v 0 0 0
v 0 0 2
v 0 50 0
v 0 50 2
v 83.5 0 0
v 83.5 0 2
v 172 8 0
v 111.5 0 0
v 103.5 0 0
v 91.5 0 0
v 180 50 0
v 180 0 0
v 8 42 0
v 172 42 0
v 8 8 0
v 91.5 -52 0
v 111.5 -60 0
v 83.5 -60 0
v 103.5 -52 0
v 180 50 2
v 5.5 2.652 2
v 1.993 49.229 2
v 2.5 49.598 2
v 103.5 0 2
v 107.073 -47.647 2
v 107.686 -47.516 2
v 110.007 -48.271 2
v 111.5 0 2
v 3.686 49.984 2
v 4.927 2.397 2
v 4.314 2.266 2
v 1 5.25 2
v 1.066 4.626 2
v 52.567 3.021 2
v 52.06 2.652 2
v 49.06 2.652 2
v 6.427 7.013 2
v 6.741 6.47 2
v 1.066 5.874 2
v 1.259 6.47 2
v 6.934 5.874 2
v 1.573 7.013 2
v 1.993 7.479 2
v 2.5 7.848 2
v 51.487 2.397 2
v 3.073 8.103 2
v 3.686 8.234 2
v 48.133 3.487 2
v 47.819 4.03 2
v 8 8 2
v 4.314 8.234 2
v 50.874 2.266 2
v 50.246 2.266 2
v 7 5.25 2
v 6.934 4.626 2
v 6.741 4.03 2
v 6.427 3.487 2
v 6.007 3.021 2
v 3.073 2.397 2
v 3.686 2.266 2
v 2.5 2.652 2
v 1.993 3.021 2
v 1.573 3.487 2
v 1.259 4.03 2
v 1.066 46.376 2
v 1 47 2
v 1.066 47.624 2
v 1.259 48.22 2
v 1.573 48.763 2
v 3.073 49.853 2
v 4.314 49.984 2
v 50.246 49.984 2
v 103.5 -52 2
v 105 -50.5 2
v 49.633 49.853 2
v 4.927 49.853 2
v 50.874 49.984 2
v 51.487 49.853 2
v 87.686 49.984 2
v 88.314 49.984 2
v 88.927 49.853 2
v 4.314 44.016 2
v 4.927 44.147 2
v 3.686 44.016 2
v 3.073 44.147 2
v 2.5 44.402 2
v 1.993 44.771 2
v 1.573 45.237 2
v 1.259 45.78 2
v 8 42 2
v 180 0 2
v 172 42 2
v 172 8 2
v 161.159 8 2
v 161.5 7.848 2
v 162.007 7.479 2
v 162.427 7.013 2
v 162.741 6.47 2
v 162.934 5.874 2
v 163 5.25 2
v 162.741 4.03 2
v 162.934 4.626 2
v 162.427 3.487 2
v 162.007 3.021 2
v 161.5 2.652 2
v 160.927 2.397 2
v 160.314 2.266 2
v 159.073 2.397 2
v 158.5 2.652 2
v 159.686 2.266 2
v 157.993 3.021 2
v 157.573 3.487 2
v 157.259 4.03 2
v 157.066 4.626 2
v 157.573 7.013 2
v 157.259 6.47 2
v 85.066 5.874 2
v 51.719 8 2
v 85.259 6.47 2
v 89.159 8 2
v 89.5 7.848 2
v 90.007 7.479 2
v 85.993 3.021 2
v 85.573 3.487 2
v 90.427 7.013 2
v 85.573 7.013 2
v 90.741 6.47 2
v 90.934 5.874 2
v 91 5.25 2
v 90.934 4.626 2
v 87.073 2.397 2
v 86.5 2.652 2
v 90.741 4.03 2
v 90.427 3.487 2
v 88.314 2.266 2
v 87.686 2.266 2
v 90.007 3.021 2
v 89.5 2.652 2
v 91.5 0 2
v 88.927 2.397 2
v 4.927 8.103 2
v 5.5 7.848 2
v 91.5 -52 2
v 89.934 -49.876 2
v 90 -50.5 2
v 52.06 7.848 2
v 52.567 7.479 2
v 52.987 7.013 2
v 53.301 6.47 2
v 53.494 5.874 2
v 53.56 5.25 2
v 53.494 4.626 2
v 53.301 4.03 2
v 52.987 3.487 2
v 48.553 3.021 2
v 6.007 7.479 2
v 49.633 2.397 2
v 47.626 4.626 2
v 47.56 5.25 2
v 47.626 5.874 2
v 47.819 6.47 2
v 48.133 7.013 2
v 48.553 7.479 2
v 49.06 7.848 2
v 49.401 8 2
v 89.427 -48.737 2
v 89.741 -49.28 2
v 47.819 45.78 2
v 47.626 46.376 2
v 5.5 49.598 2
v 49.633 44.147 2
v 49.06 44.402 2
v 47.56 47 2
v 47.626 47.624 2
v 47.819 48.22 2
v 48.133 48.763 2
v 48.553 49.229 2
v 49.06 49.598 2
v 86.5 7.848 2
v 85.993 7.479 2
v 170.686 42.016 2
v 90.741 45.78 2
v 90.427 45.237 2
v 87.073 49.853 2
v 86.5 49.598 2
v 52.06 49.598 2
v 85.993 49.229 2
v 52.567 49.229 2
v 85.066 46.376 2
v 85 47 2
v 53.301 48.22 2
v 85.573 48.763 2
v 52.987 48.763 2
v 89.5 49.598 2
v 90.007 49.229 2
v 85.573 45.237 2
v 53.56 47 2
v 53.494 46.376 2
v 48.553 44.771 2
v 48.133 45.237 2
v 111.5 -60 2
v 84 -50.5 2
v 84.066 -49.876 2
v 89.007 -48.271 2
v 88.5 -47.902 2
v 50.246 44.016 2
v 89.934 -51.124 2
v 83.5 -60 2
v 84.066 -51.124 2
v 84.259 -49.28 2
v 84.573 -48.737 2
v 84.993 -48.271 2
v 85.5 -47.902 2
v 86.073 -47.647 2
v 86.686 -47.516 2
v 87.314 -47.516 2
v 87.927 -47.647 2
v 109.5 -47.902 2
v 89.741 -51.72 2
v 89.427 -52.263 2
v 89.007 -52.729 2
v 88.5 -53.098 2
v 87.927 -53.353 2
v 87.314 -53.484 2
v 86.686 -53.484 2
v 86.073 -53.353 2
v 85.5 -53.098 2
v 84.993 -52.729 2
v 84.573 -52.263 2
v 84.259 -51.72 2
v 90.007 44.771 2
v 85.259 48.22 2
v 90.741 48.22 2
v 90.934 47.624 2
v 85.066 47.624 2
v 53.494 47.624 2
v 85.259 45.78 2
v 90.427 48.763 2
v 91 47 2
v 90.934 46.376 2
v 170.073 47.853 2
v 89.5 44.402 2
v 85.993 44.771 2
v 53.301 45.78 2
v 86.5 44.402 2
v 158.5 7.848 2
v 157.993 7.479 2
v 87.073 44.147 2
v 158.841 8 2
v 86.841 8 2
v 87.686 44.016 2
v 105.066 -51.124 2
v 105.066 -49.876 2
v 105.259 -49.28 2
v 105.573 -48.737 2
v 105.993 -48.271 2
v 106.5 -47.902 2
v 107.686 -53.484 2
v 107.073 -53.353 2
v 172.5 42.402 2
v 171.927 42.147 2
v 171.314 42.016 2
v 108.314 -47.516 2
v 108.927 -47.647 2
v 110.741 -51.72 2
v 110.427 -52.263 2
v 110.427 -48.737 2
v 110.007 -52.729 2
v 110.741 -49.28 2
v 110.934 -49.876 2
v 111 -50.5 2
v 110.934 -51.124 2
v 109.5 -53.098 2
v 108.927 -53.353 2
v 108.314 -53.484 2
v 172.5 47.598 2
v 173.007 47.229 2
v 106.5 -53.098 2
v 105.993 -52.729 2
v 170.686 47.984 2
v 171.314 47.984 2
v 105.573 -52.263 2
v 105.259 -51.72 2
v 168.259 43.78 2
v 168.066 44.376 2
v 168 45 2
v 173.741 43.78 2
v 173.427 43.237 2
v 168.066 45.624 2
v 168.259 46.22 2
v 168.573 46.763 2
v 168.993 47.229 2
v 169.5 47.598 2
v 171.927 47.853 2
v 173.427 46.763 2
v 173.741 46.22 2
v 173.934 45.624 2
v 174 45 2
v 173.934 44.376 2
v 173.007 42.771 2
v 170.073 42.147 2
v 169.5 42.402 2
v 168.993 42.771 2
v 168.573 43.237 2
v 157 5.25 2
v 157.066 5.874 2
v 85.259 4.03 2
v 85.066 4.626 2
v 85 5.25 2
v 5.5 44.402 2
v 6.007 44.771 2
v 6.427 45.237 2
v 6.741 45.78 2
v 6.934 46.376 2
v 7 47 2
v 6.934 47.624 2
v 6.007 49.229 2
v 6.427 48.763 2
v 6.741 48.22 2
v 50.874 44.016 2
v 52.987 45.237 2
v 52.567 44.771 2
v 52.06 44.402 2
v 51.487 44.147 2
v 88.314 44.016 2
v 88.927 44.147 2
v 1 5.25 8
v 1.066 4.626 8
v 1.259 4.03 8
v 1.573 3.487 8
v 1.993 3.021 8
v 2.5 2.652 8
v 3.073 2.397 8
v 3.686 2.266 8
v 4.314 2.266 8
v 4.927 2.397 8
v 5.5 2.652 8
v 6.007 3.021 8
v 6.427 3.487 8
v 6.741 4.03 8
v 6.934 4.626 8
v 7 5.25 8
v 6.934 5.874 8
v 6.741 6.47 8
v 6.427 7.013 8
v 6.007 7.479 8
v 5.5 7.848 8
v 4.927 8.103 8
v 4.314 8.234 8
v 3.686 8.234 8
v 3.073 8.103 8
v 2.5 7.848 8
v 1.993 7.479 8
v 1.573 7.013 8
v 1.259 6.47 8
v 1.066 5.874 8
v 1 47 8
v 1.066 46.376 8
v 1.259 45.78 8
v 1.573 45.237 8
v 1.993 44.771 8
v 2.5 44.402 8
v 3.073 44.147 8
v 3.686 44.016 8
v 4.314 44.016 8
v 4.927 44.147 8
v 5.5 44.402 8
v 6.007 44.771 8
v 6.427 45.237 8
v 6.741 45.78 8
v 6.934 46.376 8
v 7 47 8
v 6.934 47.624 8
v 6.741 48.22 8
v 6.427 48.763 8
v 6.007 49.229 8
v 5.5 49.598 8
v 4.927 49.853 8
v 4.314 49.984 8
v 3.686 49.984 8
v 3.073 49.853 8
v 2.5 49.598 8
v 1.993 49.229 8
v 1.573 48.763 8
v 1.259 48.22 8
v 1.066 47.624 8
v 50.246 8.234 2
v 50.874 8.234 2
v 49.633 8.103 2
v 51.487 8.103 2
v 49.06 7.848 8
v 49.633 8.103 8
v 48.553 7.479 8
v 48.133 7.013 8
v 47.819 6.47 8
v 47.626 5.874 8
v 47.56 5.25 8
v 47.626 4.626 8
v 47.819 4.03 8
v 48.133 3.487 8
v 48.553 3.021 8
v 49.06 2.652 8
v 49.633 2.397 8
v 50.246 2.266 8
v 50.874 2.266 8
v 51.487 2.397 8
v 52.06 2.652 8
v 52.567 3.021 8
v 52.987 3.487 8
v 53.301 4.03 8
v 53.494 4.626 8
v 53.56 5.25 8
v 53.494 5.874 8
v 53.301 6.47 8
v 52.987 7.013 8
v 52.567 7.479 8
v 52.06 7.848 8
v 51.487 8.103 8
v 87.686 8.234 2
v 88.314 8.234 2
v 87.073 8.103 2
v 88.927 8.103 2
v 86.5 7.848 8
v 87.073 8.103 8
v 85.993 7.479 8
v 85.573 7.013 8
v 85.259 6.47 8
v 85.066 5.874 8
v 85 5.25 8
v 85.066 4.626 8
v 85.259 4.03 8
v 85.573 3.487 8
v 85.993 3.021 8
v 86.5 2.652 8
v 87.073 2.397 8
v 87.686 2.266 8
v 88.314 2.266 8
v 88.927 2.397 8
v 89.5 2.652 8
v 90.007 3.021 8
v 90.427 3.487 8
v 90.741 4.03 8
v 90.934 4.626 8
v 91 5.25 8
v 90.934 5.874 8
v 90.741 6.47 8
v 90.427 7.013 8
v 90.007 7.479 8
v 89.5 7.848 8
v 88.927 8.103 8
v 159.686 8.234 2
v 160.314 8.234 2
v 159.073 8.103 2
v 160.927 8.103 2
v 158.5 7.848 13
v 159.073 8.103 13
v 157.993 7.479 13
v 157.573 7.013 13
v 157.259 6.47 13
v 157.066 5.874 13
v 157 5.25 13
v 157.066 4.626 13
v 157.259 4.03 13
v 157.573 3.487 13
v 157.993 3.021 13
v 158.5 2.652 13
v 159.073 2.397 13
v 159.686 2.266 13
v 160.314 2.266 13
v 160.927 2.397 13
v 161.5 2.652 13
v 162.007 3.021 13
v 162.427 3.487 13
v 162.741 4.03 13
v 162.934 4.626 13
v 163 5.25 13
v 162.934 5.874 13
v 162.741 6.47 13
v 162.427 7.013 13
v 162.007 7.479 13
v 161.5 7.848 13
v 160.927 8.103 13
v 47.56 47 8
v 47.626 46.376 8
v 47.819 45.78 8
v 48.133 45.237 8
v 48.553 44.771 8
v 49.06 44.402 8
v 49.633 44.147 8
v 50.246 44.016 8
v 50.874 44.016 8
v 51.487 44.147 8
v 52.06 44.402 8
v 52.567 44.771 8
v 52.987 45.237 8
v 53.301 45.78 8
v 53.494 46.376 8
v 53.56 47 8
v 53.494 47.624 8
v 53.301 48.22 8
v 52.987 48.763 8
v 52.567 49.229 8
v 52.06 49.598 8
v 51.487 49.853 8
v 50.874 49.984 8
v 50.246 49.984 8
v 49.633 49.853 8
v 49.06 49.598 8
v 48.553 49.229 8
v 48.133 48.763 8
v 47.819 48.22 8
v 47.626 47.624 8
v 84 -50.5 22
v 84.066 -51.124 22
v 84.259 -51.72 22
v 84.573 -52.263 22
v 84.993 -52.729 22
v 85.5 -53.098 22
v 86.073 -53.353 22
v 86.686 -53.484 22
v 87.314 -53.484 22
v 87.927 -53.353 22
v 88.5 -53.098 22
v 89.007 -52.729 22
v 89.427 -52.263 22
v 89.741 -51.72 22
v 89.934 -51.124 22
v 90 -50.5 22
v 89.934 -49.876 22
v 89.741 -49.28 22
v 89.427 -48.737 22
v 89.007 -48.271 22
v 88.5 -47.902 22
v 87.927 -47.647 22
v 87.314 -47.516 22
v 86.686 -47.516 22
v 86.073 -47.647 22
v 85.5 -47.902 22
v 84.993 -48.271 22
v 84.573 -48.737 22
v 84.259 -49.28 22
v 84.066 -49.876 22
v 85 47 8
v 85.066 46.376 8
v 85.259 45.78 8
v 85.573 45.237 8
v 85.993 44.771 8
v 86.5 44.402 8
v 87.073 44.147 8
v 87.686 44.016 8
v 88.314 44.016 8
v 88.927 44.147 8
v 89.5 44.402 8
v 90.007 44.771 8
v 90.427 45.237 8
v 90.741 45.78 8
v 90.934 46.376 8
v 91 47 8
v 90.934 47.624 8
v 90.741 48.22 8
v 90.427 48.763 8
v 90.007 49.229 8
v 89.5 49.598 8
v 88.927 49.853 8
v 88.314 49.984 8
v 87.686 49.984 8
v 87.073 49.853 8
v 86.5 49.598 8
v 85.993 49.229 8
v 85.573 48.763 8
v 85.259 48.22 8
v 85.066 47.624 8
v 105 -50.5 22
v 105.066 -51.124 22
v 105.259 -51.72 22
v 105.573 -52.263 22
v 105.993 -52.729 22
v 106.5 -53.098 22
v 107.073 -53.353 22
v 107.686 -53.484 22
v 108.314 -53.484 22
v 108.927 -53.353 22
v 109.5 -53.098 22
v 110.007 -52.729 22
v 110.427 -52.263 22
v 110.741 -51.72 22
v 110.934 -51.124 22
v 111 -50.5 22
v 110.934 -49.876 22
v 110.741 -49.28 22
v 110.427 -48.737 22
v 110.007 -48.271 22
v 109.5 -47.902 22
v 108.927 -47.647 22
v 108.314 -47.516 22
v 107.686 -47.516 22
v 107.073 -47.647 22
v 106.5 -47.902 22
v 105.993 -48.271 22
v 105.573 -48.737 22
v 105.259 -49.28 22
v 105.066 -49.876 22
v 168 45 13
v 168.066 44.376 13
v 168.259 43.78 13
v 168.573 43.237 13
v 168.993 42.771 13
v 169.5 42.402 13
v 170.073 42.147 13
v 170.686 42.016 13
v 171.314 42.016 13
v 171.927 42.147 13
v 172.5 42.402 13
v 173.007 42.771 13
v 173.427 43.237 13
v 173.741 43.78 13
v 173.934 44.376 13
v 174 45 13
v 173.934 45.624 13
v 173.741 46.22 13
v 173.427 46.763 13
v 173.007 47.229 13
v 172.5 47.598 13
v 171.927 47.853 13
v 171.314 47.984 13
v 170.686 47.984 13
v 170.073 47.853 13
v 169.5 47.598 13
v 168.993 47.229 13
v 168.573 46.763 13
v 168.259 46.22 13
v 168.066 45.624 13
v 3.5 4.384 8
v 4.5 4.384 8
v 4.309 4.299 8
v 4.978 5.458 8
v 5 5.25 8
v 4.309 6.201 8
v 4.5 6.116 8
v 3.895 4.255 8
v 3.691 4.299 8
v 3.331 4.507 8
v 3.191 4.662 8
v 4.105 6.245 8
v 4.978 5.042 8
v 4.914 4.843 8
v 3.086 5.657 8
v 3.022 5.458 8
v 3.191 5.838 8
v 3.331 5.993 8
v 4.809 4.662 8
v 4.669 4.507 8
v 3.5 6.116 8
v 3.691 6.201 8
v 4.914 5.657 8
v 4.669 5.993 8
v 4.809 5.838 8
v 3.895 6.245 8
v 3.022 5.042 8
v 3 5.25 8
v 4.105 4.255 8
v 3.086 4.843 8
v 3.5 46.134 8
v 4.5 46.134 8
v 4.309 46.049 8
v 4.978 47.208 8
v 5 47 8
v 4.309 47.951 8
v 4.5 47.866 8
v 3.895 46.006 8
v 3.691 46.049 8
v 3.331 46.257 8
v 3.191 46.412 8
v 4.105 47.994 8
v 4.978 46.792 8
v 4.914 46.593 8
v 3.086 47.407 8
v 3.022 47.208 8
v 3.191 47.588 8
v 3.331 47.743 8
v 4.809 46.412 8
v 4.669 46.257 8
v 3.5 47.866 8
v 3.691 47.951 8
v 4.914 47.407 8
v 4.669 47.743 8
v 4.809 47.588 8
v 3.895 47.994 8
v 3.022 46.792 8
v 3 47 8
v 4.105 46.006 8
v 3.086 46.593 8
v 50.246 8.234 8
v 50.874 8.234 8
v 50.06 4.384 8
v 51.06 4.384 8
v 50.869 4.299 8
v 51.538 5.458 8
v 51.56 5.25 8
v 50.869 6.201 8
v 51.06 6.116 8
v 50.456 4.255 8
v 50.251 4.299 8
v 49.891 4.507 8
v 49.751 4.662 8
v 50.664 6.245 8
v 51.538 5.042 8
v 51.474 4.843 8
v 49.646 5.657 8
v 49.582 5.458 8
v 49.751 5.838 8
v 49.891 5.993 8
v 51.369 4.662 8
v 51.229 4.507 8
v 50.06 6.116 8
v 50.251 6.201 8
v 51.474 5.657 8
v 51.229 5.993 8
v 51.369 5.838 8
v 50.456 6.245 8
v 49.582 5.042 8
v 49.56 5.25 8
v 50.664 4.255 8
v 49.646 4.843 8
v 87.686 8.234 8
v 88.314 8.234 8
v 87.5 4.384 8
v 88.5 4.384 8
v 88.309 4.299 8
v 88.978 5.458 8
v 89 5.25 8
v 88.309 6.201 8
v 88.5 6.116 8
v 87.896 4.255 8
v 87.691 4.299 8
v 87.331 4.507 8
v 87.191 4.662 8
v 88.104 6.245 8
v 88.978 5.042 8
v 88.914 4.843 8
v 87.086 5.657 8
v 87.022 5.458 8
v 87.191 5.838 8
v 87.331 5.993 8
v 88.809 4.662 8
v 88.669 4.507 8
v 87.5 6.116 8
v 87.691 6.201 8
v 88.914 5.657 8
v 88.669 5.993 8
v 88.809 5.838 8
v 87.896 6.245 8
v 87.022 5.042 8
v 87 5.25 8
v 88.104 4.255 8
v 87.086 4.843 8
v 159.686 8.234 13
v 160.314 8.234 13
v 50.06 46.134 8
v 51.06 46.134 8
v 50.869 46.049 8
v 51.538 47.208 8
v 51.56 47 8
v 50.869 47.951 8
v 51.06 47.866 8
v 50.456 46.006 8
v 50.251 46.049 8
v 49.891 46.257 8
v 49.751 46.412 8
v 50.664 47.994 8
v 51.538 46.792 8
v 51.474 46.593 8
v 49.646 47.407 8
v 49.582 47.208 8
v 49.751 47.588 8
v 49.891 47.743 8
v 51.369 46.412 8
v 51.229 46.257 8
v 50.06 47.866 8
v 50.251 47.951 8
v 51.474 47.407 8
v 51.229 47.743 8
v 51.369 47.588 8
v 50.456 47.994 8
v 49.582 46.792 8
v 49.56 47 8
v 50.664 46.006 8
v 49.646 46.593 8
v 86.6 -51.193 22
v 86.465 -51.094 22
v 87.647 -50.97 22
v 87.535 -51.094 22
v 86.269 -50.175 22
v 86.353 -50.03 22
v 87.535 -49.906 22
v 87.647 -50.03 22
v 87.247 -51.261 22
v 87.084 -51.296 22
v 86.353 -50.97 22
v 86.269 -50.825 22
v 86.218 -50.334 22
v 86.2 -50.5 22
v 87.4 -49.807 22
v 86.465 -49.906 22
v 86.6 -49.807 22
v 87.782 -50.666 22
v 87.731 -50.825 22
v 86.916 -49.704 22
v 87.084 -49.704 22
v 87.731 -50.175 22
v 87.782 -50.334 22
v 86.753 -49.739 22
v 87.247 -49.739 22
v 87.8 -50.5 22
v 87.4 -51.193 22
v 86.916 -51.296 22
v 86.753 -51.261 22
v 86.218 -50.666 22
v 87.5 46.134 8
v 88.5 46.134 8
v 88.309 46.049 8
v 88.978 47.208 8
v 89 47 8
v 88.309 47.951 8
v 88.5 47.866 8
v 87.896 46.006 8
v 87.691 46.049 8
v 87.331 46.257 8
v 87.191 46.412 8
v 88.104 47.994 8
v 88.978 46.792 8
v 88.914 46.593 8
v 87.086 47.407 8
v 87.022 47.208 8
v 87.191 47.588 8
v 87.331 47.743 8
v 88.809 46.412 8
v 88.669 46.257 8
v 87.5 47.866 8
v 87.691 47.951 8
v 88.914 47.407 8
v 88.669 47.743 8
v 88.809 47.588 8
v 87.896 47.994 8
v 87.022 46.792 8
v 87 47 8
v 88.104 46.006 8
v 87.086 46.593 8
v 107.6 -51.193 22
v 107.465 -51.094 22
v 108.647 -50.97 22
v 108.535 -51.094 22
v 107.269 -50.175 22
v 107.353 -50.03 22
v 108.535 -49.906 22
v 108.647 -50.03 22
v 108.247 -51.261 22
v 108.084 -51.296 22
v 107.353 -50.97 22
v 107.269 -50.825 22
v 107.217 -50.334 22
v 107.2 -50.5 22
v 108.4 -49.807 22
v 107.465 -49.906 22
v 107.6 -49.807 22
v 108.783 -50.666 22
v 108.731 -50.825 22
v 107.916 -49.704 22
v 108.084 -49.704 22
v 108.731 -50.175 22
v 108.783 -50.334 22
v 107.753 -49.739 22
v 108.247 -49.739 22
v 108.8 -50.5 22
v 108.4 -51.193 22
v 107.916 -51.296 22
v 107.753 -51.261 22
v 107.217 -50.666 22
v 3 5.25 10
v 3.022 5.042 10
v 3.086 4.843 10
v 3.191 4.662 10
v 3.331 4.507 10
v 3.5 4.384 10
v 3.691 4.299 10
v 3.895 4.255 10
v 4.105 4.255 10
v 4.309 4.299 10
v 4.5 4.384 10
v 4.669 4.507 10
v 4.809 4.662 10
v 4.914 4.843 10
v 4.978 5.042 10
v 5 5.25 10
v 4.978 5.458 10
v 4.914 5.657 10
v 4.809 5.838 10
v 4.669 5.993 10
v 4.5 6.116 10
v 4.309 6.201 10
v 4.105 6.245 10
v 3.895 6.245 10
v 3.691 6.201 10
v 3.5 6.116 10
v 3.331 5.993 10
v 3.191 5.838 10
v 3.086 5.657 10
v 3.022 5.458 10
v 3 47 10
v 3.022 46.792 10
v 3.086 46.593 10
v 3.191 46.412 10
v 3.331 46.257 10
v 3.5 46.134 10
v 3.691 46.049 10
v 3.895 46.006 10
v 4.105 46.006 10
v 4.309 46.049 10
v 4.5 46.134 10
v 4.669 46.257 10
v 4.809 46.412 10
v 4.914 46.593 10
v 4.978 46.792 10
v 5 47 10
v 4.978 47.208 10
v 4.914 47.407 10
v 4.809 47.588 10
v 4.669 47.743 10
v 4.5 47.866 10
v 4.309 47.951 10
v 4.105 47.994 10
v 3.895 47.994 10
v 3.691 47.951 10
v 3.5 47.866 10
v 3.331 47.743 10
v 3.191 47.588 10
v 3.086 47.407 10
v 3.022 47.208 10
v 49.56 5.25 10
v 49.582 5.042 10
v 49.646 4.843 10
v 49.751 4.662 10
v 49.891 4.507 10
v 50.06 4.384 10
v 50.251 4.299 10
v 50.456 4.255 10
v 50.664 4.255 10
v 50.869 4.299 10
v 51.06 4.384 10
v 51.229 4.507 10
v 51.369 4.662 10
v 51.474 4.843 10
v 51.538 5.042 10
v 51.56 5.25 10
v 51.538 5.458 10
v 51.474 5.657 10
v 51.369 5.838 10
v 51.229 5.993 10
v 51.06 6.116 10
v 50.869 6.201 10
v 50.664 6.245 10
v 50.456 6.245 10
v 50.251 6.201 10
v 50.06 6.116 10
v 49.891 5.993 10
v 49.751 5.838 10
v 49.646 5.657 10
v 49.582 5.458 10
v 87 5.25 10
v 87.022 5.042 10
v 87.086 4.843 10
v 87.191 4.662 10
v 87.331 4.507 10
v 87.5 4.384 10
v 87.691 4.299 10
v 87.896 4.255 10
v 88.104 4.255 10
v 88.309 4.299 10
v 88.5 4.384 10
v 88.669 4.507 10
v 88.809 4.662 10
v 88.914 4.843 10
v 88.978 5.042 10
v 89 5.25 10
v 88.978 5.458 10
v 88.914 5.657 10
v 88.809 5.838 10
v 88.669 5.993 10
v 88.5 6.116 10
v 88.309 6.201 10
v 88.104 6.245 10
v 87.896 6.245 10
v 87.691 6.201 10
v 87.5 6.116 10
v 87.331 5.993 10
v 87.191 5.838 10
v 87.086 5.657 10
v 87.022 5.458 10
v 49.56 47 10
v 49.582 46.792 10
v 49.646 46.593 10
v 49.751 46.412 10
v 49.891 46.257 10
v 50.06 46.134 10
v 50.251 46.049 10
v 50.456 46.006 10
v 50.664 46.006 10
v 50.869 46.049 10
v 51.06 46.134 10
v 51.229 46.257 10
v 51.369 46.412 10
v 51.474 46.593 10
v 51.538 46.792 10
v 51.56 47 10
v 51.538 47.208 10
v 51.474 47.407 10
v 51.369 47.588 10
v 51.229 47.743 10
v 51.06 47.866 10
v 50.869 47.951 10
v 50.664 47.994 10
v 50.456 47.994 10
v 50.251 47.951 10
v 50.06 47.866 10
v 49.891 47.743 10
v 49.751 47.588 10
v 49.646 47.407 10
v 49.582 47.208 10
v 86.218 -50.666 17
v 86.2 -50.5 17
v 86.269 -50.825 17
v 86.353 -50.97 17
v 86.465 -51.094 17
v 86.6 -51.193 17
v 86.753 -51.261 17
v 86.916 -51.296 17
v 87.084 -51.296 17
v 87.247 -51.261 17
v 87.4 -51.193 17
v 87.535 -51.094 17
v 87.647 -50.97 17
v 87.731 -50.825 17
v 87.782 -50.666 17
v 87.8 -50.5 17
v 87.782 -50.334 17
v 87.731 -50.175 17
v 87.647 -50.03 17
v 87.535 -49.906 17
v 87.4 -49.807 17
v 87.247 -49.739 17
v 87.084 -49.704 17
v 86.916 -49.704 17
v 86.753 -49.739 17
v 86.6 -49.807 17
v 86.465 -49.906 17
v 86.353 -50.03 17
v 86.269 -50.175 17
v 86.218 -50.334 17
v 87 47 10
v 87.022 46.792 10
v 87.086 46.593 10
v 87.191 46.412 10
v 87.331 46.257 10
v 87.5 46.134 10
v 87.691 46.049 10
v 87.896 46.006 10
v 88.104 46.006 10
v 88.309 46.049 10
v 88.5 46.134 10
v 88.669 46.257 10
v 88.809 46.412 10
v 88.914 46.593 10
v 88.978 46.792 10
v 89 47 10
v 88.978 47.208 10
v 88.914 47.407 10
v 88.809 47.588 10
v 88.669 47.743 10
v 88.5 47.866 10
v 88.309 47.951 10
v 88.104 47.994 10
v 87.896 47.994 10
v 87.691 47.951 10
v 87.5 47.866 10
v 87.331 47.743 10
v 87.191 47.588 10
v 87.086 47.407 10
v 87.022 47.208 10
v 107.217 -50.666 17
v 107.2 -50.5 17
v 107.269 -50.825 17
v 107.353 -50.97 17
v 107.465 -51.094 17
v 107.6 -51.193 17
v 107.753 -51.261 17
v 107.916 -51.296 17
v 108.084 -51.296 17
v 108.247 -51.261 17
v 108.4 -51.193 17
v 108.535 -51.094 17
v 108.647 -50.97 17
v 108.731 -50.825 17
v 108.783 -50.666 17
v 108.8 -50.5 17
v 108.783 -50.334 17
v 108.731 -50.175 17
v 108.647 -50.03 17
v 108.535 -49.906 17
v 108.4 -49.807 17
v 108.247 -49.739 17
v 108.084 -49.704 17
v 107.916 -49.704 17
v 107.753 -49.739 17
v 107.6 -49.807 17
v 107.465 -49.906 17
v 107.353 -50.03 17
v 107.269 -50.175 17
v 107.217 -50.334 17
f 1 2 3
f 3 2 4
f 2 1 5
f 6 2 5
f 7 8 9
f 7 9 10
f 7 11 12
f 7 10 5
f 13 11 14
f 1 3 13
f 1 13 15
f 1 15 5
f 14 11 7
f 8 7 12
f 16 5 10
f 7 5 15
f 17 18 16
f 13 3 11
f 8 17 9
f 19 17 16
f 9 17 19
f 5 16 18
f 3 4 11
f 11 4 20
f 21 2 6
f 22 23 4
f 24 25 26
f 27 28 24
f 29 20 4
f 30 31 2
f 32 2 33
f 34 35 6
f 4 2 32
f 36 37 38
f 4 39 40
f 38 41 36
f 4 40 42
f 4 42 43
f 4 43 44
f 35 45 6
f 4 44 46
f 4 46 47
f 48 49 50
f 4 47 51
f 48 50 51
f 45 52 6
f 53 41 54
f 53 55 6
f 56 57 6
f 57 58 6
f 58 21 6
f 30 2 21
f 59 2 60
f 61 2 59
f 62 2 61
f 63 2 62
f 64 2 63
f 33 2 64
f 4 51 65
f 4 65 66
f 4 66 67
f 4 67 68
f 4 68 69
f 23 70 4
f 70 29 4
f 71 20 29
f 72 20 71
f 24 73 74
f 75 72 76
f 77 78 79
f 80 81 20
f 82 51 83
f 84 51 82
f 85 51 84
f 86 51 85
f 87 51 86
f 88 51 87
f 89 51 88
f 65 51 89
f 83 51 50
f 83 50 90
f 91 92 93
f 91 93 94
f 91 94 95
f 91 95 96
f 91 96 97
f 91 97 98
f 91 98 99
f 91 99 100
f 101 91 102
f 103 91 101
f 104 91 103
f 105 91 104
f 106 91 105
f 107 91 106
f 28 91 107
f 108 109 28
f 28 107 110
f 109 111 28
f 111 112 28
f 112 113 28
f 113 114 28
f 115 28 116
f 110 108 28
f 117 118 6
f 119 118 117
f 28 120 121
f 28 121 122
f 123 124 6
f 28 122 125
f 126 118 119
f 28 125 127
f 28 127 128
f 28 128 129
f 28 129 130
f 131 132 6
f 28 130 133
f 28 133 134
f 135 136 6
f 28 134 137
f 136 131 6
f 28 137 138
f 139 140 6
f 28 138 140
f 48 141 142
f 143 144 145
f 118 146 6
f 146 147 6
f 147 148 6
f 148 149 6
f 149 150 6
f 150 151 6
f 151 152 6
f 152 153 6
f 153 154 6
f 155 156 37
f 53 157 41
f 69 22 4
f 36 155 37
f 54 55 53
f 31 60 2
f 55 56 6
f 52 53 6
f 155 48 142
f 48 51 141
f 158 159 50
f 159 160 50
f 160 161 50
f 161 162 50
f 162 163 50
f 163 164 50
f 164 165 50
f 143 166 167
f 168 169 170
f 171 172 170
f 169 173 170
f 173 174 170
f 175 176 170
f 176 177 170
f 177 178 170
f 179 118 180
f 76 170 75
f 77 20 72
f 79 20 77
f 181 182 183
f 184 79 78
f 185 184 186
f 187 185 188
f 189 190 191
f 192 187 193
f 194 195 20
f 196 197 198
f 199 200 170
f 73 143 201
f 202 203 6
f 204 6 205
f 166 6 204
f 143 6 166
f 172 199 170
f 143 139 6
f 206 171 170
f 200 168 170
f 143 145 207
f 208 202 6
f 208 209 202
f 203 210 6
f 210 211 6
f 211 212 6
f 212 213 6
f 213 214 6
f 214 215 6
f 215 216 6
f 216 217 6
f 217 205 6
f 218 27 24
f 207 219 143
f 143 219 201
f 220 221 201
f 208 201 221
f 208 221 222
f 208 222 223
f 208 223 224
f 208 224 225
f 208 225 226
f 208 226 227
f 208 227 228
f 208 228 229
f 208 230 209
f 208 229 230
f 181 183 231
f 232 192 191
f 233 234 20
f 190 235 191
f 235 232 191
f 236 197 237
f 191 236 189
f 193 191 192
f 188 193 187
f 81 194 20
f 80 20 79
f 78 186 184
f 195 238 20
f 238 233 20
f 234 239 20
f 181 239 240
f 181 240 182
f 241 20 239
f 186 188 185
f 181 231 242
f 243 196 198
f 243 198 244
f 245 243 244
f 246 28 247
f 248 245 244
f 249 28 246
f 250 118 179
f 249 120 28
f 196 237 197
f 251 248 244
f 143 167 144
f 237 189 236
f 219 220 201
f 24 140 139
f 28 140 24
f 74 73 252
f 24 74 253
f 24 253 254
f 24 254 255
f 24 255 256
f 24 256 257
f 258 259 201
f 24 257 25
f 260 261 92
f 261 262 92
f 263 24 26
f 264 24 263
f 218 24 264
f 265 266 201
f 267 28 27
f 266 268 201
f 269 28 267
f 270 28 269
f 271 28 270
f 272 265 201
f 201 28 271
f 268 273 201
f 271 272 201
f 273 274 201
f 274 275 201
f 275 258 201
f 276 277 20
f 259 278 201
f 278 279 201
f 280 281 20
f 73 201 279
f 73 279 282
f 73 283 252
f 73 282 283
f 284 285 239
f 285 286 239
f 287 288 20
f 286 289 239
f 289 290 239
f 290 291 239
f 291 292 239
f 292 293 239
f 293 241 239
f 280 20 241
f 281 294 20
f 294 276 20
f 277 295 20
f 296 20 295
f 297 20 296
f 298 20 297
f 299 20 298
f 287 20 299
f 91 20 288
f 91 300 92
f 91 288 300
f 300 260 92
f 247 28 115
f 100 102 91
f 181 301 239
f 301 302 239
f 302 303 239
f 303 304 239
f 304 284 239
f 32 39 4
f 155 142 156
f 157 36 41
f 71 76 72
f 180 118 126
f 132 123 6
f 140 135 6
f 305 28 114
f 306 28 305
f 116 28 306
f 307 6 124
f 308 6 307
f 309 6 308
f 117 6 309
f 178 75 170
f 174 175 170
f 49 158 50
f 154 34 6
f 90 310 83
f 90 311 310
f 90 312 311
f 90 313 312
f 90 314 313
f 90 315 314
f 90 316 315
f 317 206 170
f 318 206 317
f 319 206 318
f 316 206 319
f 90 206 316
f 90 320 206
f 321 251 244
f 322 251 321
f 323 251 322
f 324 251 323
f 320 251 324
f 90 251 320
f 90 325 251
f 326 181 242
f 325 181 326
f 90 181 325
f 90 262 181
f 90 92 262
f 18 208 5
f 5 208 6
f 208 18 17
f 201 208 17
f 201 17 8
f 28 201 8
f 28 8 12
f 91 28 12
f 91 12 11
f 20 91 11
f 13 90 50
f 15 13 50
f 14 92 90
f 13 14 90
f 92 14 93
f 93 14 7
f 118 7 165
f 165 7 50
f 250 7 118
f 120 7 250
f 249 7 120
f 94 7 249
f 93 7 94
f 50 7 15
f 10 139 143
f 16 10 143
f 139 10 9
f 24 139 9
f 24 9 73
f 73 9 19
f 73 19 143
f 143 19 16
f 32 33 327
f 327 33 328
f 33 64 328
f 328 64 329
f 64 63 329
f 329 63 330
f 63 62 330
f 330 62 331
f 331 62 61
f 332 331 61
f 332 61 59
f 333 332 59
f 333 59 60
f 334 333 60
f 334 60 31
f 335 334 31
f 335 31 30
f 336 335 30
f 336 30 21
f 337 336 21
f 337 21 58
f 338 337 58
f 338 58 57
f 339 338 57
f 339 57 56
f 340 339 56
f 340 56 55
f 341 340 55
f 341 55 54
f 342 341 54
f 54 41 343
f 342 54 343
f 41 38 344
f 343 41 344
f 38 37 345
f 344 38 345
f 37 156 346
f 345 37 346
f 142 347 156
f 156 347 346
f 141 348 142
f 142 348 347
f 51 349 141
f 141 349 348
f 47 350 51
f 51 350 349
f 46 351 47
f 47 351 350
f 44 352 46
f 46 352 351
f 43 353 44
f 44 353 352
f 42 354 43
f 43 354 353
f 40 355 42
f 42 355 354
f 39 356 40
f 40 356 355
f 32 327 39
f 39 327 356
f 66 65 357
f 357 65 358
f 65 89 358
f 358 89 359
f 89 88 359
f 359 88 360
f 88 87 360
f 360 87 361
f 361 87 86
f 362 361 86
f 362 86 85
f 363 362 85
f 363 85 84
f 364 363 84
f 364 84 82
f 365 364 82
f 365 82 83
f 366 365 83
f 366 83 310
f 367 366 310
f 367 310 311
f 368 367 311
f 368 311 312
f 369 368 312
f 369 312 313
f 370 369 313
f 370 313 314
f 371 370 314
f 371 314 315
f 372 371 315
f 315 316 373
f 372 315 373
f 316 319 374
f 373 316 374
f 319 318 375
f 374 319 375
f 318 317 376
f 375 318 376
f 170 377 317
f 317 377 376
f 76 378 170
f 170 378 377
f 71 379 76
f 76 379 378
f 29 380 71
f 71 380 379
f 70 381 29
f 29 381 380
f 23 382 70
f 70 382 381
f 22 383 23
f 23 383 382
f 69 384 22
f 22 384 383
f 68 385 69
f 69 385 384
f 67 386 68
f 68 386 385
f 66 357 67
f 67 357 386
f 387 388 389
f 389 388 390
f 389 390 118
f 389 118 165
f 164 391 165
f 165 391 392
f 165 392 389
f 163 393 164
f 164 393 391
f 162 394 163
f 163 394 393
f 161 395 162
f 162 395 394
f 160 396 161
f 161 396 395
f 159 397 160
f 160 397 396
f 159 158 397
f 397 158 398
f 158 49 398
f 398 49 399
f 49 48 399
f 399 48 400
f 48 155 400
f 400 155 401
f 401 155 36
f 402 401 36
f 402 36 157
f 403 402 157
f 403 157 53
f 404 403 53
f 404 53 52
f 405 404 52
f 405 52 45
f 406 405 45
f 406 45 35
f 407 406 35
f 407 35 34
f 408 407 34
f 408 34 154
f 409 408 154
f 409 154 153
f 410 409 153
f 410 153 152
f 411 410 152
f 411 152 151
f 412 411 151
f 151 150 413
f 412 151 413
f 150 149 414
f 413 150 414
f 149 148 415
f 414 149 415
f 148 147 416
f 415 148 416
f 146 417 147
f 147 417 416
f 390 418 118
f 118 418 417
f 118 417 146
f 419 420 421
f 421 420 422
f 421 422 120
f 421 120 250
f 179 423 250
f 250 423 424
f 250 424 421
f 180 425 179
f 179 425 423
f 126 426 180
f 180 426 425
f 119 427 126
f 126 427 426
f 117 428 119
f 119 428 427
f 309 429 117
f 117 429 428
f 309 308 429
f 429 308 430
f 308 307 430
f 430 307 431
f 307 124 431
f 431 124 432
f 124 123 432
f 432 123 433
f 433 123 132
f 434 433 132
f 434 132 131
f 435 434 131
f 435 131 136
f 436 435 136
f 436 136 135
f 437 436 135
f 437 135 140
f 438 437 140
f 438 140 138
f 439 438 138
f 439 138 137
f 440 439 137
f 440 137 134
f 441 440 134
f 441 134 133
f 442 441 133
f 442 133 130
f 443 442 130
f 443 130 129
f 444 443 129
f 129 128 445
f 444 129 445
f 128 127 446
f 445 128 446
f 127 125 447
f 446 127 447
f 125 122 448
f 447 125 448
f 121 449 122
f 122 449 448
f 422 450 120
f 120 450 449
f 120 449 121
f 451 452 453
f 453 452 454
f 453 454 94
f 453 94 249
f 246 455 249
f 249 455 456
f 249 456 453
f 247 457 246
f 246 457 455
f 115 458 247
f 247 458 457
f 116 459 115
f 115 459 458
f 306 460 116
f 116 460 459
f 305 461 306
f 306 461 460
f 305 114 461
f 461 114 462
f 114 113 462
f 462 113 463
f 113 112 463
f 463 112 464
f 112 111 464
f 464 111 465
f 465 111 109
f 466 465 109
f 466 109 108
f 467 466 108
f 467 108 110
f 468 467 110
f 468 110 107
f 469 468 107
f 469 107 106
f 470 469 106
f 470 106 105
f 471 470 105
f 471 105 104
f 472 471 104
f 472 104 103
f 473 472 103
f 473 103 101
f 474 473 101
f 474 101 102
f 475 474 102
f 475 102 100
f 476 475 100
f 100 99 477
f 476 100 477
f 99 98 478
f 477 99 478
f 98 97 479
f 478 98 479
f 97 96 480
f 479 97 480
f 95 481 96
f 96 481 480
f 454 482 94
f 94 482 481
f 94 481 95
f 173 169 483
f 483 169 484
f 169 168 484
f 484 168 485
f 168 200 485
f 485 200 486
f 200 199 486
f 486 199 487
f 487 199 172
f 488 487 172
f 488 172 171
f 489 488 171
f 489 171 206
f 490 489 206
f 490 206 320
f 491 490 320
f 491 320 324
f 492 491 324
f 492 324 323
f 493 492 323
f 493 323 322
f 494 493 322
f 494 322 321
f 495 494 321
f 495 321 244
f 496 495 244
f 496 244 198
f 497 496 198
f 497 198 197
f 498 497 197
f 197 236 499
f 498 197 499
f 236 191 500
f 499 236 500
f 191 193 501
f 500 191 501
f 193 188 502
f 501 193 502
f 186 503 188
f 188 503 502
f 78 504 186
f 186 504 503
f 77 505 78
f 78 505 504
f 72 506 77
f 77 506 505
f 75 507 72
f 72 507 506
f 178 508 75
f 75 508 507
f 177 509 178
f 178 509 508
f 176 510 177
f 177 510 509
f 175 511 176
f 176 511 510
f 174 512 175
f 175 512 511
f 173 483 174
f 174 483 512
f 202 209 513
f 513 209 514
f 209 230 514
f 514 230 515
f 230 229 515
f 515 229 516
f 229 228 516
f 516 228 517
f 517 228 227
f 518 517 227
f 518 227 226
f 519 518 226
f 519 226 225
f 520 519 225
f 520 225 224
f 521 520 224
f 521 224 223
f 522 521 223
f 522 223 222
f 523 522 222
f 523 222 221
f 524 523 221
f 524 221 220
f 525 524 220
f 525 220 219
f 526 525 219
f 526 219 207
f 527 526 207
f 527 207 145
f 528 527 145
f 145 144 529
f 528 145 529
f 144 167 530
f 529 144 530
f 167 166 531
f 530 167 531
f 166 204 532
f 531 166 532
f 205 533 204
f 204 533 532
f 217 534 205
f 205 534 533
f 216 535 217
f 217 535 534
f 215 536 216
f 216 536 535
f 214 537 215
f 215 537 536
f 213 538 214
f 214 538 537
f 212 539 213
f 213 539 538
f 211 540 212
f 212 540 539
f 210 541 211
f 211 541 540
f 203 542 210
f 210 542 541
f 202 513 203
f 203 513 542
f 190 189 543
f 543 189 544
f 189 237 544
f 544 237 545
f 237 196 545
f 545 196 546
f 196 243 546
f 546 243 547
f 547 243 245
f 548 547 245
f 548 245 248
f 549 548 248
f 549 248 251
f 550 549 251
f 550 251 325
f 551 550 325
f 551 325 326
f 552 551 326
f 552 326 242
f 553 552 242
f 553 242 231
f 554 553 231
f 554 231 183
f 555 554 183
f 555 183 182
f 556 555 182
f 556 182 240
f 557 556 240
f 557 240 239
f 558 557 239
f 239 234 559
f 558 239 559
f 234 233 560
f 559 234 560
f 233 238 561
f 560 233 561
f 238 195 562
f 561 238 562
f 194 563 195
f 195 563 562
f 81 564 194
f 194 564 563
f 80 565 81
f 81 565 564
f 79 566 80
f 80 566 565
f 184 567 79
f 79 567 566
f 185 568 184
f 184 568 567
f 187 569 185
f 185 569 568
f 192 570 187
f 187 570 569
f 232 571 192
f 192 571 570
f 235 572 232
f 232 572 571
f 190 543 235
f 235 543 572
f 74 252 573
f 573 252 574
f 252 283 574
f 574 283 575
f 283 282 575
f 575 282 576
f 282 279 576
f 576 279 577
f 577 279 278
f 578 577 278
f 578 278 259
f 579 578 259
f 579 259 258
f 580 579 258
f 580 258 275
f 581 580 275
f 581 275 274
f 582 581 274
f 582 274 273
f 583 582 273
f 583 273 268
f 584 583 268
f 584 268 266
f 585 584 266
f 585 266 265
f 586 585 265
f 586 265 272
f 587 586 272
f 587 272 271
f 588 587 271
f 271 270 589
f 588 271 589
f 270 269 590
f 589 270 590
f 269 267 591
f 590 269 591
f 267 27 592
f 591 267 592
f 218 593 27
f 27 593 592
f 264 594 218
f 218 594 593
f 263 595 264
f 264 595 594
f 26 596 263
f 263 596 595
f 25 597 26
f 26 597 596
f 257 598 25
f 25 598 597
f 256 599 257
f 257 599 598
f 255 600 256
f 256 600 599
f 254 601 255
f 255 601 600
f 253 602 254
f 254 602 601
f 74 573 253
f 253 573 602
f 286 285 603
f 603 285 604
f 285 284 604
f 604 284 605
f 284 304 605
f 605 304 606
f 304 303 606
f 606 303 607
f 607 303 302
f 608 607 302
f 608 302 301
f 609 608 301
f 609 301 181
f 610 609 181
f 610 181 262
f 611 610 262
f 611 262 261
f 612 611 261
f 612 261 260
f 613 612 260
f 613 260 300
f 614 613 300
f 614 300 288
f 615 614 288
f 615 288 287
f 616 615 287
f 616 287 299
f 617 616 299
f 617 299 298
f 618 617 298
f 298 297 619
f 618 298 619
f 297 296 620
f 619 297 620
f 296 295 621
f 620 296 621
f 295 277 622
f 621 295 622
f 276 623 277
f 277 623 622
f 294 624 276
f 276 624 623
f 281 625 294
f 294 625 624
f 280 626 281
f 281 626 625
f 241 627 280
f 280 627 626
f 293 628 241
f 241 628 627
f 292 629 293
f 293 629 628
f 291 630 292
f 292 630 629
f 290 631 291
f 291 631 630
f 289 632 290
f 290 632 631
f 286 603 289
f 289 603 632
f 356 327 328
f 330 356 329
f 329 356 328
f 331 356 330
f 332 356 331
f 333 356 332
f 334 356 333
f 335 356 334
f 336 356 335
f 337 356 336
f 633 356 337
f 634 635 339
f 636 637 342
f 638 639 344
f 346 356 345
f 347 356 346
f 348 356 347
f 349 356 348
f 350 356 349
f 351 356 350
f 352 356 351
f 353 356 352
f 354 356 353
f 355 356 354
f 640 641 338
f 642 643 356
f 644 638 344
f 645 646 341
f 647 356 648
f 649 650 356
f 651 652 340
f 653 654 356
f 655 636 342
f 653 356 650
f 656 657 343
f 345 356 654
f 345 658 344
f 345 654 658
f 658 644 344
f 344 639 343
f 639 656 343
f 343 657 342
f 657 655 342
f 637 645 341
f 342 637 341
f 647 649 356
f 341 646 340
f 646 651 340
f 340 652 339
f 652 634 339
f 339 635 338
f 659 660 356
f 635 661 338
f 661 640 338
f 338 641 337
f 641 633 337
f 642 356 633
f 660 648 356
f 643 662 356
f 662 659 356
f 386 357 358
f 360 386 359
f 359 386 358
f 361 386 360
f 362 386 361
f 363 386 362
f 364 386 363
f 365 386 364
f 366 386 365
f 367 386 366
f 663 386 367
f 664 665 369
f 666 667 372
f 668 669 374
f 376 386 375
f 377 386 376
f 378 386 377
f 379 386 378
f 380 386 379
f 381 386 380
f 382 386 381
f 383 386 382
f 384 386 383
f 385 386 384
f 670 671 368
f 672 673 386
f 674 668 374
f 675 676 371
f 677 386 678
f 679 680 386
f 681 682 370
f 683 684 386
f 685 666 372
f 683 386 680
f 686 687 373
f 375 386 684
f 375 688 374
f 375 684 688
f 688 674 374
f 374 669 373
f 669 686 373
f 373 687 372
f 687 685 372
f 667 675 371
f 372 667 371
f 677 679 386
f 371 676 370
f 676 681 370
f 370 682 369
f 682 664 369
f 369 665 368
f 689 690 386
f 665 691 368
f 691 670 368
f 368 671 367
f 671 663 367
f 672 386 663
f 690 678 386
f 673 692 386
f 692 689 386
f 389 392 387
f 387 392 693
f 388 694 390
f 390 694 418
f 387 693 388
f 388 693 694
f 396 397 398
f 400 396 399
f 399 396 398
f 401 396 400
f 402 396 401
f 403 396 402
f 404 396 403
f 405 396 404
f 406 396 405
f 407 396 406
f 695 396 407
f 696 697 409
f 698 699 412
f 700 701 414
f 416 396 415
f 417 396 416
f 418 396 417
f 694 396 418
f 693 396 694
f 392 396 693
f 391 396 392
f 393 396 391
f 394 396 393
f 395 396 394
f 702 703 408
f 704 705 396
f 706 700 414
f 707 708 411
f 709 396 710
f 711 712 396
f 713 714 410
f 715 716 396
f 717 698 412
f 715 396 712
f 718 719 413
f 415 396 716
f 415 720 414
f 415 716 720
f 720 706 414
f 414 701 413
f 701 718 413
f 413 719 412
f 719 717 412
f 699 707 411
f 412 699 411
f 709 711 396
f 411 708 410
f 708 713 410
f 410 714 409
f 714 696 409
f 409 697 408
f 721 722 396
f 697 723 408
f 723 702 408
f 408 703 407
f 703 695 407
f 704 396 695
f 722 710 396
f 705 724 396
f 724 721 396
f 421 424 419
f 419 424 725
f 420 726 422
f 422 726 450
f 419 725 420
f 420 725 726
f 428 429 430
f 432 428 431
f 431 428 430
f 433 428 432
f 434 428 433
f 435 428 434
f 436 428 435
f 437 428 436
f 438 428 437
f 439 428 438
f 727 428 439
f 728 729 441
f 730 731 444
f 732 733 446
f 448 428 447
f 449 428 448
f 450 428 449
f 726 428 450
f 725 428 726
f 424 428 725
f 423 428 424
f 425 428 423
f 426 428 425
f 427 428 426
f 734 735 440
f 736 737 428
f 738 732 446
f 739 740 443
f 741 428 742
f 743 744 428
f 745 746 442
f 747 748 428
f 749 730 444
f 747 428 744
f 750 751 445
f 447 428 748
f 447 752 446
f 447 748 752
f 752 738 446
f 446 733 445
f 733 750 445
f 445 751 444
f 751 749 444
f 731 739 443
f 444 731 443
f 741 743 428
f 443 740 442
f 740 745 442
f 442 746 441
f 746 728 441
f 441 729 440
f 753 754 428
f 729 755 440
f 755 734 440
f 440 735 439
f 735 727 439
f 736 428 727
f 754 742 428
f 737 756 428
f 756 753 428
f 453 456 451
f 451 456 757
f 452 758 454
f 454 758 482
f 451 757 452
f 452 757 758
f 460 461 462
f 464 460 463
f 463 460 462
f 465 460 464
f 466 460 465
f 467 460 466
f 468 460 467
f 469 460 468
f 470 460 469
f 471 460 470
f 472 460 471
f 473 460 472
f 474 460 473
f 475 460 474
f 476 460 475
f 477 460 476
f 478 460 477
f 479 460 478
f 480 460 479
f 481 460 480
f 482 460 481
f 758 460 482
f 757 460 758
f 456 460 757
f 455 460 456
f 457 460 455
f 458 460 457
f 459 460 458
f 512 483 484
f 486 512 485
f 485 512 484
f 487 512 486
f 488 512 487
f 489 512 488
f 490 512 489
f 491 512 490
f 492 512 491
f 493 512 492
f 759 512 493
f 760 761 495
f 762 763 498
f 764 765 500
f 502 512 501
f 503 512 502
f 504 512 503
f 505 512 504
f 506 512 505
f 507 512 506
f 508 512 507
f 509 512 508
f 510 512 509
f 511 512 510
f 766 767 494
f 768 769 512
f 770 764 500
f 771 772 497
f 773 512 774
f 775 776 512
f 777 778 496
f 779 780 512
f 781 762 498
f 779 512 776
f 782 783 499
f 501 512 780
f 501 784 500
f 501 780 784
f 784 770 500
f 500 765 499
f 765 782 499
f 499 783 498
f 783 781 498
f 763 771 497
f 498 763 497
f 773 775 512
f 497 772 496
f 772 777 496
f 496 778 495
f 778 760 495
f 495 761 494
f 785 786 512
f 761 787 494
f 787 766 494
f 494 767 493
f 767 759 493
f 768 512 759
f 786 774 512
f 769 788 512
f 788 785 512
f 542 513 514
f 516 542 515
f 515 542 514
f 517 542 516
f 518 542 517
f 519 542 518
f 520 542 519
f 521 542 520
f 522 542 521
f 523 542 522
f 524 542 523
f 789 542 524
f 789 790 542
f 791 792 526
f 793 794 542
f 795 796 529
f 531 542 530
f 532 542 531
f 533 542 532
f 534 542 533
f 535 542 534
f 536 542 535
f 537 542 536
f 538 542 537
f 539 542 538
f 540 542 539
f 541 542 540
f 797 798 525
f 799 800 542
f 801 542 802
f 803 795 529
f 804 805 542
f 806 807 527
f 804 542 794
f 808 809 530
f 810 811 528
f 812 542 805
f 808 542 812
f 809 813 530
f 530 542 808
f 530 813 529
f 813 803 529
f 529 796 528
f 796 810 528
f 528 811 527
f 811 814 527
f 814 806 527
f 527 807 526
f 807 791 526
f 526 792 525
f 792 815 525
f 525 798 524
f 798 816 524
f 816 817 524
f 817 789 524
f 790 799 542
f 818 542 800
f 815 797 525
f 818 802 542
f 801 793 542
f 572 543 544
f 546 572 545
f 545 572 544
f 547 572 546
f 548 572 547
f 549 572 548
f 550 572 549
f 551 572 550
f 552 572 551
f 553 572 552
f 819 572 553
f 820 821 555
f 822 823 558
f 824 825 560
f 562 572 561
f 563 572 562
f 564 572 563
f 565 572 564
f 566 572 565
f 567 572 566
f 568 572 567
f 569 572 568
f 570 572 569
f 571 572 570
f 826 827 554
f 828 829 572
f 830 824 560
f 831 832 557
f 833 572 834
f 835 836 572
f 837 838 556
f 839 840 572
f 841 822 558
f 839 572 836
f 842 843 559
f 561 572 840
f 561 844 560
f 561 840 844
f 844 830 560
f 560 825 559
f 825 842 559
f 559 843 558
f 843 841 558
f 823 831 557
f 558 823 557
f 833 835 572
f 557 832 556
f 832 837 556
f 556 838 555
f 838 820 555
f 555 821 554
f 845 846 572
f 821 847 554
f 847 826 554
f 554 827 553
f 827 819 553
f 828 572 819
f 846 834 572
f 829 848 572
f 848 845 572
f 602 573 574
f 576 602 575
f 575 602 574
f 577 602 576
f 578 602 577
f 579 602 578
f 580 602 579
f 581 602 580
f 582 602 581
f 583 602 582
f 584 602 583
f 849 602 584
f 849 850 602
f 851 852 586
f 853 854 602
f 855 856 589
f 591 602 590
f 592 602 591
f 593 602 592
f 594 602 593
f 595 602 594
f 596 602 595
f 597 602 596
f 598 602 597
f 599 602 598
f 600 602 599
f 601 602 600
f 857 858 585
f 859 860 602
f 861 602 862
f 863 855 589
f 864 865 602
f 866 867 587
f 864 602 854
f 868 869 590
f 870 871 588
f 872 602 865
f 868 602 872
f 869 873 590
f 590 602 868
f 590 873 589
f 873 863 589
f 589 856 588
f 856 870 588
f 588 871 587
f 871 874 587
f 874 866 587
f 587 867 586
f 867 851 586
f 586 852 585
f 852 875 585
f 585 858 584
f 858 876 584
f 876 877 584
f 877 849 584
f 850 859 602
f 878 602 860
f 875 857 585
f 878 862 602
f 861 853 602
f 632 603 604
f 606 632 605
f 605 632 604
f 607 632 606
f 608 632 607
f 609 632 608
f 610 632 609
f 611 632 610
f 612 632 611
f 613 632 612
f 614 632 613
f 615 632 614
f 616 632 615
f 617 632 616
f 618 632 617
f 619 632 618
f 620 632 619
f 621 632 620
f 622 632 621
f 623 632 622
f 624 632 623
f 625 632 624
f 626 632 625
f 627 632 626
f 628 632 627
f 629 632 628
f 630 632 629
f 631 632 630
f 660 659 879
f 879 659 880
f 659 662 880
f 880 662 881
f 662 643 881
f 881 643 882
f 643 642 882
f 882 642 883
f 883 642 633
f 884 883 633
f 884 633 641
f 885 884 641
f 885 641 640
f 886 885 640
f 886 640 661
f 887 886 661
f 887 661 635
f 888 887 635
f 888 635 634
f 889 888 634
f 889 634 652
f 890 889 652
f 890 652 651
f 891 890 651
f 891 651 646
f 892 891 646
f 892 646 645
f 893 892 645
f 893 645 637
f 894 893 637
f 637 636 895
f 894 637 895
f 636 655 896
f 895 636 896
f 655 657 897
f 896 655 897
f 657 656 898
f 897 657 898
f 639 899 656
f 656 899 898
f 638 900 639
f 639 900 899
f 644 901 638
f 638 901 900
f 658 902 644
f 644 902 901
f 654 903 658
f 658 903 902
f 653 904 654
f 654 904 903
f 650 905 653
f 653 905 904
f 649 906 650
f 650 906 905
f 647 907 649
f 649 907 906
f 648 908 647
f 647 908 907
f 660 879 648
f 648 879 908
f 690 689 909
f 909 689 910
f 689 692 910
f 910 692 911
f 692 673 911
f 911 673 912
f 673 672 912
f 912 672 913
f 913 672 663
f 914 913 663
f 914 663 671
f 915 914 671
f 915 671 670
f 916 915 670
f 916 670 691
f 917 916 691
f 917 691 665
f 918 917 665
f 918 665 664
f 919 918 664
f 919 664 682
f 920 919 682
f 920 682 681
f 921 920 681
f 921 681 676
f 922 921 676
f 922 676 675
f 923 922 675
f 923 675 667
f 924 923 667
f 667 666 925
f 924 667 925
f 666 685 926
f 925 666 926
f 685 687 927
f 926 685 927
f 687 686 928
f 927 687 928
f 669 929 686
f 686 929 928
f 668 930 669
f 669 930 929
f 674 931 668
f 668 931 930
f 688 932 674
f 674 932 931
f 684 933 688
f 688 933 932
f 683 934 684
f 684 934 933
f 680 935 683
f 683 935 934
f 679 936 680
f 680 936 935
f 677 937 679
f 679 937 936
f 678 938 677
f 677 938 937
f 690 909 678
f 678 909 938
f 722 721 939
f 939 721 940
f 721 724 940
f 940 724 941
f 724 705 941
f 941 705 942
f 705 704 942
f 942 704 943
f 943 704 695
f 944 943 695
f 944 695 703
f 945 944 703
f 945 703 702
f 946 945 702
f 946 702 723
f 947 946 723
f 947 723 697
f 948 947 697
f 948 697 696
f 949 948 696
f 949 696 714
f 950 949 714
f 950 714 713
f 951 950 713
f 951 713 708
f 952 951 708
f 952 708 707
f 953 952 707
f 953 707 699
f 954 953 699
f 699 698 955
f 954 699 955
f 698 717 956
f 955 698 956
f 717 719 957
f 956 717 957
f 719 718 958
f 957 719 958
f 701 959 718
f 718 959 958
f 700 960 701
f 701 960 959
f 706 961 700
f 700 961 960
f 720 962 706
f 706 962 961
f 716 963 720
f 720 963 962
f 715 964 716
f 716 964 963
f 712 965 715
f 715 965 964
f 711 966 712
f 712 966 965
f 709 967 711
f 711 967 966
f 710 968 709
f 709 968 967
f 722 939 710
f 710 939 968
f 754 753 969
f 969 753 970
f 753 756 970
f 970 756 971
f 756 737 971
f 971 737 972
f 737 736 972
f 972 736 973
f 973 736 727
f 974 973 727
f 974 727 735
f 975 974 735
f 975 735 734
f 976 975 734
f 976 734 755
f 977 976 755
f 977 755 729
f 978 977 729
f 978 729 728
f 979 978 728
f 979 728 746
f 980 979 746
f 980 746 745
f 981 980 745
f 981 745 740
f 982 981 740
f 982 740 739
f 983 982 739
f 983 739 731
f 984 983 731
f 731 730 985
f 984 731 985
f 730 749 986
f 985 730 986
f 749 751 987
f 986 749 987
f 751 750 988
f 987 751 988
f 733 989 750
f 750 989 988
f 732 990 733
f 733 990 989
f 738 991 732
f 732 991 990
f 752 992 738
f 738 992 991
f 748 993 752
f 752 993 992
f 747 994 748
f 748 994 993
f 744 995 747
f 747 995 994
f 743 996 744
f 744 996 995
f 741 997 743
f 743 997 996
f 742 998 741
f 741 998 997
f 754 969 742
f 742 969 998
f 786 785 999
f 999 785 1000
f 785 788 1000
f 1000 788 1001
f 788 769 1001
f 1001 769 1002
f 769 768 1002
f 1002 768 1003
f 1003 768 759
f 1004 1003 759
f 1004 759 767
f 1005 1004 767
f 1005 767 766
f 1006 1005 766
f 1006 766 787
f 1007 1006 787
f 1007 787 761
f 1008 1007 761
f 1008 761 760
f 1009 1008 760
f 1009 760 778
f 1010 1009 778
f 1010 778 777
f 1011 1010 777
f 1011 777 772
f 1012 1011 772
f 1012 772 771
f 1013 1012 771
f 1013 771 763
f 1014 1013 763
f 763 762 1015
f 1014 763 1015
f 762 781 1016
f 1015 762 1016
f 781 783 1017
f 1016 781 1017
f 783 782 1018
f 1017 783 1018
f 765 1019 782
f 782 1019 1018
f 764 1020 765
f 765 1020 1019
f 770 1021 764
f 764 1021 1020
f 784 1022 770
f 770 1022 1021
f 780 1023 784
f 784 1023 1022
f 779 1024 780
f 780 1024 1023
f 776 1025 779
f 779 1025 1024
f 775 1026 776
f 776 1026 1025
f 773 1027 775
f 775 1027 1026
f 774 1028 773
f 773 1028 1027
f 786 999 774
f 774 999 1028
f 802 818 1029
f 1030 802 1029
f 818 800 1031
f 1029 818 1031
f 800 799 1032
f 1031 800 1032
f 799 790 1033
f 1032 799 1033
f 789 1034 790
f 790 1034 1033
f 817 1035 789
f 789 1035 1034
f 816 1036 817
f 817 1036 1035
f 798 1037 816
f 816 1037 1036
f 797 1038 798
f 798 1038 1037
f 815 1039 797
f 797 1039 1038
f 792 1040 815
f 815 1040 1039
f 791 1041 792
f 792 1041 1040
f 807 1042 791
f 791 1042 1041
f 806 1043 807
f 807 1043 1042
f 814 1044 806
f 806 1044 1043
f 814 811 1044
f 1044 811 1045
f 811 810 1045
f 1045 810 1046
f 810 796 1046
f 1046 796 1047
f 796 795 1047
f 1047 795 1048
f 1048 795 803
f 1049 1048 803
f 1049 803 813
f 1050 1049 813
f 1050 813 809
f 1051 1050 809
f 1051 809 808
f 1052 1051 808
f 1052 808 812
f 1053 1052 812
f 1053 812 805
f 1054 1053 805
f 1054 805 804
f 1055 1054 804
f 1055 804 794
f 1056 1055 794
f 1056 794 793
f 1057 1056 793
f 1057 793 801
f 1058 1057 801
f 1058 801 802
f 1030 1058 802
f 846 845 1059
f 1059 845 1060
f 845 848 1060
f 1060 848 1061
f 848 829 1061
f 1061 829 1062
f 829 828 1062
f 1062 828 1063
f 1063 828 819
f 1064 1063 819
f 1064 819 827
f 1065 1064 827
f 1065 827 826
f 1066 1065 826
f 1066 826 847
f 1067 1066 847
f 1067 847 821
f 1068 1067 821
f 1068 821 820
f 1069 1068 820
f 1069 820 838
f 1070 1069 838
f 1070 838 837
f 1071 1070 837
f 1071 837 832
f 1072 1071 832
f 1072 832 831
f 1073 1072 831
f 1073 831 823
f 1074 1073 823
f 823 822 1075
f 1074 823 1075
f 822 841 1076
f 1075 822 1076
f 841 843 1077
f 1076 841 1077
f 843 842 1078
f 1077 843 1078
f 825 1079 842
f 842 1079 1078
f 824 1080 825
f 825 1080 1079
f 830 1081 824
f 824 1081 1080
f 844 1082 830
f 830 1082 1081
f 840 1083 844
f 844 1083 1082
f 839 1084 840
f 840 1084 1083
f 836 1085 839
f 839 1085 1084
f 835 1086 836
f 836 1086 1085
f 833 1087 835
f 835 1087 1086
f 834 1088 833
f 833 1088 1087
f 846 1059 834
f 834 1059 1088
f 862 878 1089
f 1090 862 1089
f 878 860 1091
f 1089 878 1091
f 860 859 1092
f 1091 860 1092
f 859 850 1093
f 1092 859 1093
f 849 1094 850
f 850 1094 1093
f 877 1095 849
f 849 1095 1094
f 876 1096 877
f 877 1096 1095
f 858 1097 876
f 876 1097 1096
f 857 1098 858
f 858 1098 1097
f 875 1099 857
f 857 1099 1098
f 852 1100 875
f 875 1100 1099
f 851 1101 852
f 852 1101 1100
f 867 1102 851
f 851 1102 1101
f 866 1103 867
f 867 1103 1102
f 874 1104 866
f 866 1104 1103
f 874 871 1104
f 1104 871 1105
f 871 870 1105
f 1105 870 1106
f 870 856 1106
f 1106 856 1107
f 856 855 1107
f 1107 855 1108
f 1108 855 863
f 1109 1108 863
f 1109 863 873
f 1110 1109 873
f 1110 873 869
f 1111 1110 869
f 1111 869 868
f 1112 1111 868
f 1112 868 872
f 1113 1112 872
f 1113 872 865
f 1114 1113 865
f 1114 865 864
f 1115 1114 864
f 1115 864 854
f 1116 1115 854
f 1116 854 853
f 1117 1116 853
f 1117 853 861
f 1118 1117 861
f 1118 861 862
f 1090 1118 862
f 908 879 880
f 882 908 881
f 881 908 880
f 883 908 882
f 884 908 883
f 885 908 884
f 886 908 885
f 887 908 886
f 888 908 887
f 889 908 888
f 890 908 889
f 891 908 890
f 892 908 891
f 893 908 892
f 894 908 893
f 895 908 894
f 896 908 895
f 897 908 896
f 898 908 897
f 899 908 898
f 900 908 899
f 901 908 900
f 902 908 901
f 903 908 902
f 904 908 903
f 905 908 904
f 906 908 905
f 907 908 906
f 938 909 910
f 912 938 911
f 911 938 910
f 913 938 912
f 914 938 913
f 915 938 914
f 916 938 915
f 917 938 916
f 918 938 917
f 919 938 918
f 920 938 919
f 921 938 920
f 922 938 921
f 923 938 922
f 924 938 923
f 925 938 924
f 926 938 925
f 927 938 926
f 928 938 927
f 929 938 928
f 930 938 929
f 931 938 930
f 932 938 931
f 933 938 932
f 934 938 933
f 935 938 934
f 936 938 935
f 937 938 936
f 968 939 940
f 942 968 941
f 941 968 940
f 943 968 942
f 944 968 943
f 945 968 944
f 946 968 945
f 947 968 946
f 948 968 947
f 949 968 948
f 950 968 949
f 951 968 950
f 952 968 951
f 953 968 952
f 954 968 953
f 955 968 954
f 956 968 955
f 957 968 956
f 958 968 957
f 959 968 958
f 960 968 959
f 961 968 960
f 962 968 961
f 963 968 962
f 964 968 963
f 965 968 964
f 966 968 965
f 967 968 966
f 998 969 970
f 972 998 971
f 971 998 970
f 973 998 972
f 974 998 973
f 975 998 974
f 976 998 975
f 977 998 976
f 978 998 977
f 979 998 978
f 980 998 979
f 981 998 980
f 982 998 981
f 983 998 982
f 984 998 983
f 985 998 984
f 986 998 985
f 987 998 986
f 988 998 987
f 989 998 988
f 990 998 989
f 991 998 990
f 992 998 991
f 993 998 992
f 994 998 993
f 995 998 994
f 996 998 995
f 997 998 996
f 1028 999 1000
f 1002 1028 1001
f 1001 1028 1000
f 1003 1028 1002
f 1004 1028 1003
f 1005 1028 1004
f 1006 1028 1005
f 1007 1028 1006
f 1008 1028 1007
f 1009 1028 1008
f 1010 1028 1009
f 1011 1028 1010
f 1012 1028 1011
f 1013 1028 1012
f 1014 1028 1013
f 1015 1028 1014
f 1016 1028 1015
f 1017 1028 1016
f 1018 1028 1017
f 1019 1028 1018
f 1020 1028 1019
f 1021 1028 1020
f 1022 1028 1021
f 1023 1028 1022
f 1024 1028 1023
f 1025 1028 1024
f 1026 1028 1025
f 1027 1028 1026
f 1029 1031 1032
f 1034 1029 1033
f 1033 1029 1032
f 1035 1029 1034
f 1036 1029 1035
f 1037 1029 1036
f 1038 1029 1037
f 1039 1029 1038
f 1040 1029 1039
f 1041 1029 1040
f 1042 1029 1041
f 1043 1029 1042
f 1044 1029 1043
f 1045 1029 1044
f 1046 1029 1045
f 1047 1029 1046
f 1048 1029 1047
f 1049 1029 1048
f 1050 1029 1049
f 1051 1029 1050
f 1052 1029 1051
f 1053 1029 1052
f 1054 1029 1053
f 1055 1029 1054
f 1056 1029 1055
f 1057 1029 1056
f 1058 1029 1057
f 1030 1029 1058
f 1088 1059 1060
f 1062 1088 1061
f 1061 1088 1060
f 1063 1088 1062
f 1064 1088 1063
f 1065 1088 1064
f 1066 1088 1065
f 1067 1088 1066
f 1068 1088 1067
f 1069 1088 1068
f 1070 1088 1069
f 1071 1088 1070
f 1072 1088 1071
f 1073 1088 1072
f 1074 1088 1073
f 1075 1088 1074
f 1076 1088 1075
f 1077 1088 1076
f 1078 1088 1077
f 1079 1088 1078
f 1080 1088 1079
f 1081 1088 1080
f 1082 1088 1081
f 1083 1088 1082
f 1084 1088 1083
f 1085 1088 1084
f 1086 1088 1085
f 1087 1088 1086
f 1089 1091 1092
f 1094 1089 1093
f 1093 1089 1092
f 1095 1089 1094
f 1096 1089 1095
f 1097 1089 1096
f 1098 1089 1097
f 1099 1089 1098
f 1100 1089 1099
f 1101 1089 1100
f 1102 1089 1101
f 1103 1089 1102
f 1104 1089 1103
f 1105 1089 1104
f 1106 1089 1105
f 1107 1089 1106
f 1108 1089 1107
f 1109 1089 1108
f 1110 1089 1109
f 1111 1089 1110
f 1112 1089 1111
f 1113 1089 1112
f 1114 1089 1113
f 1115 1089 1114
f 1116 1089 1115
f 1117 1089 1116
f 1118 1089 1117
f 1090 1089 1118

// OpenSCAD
// main board size
L = 50;
W = 180;
T = 2;

// waveshare size, offset
Lw = 60;
Ww = 28;
Xw = 97.5;
ww = 21;
yw = 50.5;

B = 8;

// spacer heights
S1 = 6;
S2 = 11;
S3 = 20;
Ph = 2;

// spacer radii
Sr = 3;
Pr = 1.0;
Hr = 0.8;
$fn = 30;


module s1()
{
   cylinder(S1, r1=Sr, r2=Sr);
   translate([0,0,S1]) cylinder(Ph, r1=Pr, r2=Pr);
}

module s2()
{
   cylinder(S2, r1=Sr, r2=Sr);
}

module s3()
{
   difference() {
     cylinder(S3, r1=Sr, r2=Sr);
     translate ([0,0,3*S3/4]) cylinder(S3, r1=Hr, r2=Hr);
  }
}

module hermes_lite()

{

 difference() {
     cube([W,L,T]);
     translate ([B,B,0]) cube([W-2*B,L-2*B,T]);
 }
 difference() {
     translate ([Xw-Ww/2,-Lw,0]) cube([Ww,Lw,T]);
     translate ([Xw-Ww/2+B,-Lw+B,0]) cube([Ww-2*B,Lw-B,T]);
 }
 translate ([4,5.25,T] ) s1();
 translate ([4,47,T] ) s1();
 translate ([50.56,5.25,T] ) s1();
 translate ([50.56,47,T] ) s1();
 translate ([88,5.25,T] ) s1();
 translate ([88,47,T] ) s1();
 translate ([160,5.25,T]) s2();
 translate ([171,45,T]) s2();
 translate ([Xw-ww/2,-yw,T]) s3();
 translate ([Xw+ww/2,-yw,T]) s3();
}

hermes_lite();
